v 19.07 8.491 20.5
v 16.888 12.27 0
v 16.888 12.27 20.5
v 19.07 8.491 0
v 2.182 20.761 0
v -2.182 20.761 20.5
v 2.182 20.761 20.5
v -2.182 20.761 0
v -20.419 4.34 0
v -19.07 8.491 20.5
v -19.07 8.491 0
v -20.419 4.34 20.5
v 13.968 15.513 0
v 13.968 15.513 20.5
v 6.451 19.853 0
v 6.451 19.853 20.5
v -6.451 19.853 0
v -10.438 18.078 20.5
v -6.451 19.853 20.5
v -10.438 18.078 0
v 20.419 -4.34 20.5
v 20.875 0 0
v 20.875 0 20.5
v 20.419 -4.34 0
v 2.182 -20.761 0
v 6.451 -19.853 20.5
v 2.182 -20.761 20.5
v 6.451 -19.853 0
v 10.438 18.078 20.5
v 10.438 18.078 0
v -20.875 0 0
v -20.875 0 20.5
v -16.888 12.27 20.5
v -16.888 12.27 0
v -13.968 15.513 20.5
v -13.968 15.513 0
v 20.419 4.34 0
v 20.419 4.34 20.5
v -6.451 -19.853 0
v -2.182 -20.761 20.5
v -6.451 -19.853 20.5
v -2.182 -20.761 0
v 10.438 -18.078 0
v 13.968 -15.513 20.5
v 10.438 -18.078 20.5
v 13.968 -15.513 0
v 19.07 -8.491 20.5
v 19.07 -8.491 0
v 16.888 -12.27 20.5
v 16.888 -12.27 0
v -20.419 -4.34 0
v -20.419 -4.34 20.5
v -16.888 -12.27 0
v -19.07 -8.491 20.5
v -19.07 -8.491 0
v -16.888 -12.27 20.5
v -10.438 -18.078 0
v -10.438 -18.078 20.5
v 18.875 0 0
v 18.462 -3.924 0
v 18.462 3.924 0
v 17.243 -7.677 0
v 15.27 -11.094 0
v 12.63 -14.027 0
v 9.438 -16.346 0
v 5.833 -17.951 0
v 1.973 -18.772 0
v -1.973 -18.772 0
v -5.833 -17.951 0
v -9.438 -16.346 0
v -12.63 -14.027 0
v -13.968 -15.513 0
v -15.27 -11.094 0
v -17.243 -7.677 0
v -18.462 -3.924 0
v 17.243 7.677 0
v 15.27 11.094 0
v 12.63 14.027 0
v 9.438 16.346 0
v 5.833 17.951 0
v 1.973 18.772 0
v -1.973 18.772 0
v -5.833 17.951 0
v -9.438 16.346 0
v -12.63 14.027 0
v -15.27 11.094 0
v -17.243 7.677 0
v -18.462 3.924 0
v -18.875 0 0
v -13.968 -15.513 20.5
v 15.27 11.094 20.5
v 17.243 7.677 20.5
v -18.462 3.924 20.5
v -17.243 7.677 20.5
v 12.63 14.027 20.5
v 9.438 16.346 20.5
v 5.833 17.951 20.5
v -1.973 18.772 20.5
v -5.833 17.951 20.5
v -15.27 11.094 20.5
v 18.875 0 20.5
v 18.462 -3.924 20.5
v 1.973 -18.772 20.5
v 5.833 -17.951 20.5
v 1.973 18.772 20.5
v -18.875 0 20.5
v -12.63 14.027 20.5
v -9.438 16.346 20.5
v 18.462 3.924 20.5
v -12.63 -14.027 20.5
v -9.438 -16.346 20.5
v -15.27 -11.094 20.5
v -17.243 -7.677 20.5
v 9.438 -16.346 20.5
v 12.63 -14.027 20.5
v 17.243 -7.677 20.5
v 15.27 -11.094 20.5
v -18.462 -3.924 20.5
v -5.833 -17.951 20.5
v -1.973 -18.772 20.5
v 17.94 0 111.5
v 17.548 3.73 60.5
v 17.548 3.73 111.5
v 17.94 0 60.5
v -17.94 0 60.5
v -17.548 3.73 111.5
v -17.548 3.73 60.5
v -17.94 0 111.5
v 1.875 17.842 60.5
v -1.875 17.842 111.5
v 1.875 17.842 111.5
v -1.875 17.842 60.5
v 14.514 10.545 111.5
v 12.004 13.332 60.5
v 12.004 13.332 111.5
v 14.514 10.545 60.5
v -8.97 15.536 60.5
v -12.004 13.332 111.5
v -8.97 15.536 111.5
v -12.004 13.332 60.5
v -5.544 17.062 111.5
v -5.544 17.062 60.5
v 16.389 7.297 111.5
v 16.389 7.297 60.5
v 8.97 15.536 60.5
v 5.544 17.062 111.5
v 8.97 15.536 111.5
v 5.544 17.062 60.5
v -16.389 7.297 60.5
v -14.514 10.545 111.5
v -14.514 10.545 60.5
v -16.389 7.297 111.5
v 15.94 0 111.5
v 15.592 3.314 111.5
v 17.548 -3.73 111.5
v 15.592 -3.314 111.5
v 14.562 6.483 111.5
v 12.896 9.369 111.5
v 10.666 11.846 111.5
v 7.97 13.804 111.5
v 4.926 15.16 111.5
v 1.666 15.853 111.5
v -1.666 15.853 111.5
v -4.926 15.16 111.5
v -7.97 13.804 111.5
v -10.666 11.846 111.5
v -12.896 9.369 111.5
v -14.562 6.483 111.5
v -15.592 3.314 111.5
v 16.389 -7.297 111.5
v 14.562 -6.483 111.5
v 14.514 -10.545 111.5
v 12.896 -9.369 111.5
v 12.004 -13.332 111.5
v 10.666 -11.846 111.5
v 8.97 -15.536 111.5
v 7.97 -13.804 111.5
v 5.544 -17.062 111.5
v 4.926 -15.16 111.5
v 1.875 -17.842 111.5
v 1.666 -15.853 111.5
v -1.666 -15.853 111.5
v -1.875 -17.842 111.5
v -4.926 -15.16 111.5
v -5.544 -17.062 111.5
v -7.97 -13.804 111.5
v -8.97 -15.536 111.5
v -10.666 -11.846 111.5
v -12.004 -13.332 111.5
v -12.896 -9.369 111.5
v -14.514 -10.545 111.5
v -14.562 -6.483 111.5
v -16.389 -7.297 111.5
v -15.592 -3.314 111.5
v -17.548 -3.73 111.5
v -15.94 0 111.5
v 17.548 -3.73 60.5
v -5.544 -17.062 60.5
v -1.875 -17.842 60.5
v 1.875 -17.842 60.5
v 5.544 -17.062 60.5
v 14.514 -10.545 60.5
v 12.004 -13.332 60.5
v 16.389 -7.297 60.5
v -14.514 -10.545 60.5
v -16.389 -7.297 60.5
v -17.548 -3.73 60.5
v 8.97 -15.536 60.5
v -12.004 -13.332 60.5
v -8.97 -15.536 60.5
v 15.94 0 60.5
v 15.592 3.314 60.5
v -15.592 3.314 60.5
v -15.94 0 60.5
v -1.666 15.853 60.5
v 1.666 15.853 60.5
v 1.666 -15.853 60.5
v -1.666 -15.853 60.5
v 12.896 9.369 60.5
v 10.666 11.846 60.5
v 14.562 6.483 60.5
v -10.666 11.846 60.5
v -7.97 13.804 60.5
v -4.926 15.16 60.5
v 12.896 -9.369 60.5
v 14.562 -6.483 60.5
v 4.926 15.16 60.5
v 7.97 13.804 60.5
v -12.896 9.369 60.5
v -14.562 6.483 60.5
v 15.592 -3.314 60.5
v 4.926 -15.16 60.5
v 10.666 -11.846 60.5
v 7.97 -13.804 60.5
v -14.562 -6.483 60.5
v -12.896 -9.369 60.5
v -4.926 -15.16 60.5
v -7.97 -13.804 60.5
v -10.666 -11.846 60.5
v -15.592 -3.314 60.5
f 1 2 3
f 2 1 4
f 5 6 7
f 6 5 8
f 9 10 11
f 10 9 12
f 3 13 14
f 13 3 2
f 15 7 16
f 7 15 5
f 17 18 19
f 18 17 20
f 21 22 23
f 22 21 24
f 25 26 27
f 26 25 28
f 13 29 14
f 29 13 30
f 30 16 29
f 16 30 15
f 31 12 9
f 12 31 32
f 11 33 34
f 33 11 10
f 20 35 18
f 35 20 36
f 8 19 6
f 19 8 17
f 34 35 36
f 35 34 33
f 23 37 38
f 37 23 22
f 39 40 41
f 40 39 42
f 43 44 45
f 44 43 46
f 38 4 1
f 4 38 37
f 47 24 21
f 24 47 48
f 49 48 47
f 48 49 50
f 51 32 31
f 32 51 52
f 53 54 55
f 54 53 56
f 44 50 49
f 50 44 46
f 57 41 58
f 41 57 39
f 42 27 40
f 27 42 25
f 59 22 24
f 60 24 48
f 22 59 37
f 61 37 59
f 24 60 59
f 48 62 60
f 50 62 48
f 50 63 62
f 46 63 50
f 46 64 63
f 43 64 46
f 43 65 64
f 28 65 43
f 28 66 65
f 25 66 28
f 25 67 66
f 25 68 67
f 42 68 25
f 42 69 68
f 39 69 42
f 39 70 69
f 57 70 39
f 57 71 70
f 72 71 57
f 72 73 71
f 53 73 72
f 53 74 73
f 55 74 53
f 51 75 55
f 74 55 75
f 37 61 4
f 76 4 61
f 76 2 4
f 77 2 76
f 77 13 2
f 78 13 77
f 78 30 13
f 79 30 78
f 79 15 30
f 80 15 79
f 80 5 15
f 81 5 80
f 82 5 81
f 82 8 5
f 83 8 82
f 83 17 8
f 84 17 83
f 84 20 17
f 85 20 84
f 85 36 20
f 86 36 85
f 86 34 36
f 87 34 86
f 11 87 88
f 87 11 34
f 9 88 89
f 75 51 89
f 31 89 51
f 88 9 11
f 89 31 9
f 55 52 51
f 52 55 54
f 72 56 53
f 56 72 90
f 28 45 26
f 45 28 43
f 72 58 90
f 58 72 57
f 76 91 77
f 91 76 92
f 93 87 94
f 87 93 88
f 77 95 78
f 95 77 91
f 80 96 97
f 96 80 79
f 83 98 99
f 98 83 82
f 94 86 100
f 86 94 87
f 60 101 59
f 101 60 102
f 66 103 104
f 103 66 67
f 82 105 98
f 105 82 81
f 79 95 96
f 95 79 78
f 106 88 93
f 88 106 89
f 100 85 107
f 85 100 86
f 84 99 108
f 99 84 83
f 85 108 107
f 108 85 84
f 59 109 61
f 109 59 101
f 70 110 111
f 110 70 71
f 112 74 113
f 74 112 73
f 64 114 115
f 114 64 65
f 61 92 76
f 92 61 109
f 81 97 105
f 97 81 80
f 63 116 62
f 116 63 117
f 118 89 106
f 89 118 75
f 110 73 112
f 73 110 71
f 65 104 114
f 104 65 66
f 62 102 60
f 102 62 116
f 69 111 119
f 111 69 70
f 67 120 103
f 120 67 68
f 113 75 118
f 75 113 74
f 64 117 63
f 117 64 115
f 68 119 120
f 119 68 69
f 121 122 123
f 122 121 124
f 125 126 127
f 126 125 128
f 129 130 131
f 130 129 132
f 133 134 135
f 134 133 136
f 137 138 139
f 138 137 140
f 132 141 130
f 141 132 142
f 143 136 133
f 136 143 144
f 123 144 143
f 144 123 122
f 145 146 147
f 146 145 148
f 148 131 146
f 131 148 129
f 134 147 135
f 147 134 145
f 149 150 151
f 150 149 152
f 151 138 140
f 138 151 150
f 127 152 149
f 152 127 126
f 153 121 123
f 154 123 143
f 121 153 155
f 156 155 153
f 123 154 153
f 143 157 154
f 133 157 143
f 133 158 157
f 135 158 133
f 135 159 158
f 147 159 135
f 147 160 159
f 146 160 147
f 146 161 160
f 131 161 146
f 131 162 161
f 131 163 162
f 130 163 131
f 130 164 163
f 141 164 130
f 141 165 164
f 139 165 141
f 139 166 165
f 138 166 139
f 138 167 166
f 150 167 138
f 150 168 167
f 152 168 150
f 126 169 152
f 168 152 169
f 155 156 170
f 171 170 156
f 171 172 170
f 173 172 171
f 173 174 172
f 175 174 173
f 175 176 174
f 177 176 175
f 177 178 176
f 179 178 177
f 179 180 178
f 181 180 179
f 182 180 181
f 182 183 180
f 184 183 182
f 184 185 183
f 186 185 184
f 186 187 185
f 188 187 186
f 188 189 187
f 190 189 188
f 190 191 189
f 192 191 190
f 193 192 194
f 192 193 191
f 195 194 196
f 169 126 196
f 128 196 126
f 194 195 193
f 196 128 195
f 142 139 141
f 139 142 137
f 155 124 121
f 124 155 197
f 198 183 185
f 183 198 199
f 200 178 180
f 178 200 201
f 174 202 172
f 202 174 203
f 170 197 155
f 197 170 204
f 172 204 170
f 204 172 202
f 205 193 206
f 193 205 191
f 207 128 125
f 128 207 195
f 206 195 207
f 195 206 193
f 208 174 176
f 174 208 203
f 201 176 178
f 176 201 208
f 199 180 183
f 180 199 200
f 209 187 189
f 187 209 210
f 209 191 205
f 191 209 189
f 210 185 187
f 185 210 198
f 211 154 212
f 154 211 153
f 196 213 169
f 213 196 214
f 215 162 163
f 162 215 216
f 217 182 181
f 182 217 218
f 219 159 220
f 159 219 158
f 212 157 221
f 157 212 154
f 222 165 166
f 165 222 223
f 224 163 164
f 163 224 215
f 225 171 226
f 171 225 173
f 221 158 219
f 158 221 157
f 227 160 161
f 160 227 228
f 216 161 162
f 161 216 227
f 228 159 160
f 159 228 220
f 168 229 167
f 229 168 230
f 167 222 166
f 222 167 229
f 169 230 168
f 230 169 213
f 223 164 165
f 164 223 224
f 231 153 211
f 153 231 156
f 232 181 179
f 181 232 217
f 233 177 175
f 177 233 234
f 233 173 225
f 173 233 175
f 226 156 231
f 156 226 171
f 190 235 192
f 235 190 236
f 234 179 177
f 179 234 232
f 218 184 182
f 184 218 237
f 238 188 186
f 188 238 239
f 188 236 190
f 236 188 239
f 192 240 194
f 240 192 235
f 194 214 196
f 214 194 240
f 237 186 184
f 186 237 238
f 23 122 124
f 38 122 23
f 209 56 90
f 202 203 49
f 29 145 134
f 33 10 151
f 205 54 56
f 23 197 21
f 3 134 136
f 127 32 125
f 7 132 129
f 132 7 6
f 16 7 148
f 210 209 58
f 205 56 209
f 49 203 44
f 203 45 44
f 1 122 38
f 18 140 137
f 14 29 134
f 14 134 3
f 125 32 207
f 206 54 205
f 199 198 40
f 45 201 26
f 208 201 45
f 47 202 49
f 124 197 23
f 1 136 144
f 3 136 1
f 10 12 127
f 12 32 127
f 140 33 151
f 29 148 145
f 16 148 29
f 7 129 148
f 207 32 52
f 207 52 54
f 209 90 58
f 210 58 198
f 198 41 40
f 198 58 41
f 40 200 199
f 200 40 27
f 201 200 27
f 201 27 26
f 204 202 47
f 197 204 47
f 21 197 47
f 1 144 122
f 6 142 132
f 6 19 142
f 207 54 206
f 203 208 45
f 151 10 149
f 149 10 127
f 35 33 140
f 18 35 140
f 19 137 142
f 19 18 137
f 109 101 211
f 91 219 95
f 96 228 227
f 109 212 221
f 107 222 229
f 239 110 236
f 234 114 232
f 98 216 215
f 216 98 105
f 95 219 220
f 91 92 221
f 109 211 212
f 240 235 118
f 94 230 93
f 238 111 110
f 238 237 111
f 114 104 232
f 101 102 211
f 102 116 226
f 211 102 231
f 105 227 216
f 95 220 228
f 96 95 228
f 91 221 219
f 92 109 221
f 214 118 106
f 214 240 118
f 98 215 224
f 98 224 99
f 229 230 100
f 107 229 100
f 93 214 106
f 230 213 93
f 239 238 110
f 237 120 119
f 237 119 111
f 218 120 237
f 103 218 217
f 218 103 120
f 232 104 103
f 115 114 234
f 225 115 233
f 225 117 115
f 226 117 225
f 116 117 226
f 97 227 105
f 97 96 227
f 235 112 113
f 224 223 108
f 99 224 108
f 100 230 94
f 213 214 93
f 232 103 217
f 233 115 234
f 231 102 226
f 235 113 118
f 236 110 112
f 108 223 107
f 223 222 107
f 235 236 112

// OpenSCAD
/*  miterVacuumAdapter OpenSCAD File
    Copyright (C) 2017 The Maker Garage

    This program is free software: you can redistribute it and/or modify
    it under the terms of the GNU General Public License as published by
    the Free Software Foundation, either version 3 of the License, or
    (at your option) any later version.

    This program is distributed in the hope that it will be useful,
    but WITHOUT ANY WARRANTY; without even the implied warranty of
    MERCHANTABILITY or FITNESS FOR A PARTICULAR PURPOSE.  See the
    GNU General Public License for more details.

    You should have received a copy of the GNU General Public License
    along with this program.  If not, see <http://www.gnu.org/licenses/>.
    
*/

/*
    This file generates an adapter that allows a miter saw dust port to be connected with a shop-vac.  It was specifically designed for the Ryobi 12” Sliding Compound Miter Saw with Laser TSS120L and the Shop-Vac 90M300.  It may work with other saws and shop-vacs.  The dimensions listed below can be modified for use with another miter saw/shop-vac combo.  Due to the variance in printer calibration and quality, some tweaking of the parameters and/or the print may be required to be able to print the item.
*/


miterDiameter = 37.75;
miterDepth = 20.5;
vacuumDiameter = 31.88;
vacuumDepth = 51;
transitionLength = 40;
wallThickness = 2;

union(){
    difference(){
        cylinder(h=miterDepth, d=(miterDiameter+(2*wallThickness)));
        cylinder(h=miterDepth, d=miterDiameter);
    }
    //Better!
    translate([0, 0, (miterDepth+transitionLength)])
    difference(){
        cylinder(h=vacuumDepth, d=(vacuumDiameter+(2*wallThickness)));
        cylinder(h=vacuumDepth, d=vacuumDiameter);
    }
    translate([0, 0, miterDepth])
    difference(){
        cylinder(h=transitionLength, d1=(miterDiameter+(2*wallThickness)), d2=(vacuumDiameter+(2*wallThickness)));
        cylinder(h=transitionLength, d1=miterDiameter, d2=vacuumDiameter);
    }
}
